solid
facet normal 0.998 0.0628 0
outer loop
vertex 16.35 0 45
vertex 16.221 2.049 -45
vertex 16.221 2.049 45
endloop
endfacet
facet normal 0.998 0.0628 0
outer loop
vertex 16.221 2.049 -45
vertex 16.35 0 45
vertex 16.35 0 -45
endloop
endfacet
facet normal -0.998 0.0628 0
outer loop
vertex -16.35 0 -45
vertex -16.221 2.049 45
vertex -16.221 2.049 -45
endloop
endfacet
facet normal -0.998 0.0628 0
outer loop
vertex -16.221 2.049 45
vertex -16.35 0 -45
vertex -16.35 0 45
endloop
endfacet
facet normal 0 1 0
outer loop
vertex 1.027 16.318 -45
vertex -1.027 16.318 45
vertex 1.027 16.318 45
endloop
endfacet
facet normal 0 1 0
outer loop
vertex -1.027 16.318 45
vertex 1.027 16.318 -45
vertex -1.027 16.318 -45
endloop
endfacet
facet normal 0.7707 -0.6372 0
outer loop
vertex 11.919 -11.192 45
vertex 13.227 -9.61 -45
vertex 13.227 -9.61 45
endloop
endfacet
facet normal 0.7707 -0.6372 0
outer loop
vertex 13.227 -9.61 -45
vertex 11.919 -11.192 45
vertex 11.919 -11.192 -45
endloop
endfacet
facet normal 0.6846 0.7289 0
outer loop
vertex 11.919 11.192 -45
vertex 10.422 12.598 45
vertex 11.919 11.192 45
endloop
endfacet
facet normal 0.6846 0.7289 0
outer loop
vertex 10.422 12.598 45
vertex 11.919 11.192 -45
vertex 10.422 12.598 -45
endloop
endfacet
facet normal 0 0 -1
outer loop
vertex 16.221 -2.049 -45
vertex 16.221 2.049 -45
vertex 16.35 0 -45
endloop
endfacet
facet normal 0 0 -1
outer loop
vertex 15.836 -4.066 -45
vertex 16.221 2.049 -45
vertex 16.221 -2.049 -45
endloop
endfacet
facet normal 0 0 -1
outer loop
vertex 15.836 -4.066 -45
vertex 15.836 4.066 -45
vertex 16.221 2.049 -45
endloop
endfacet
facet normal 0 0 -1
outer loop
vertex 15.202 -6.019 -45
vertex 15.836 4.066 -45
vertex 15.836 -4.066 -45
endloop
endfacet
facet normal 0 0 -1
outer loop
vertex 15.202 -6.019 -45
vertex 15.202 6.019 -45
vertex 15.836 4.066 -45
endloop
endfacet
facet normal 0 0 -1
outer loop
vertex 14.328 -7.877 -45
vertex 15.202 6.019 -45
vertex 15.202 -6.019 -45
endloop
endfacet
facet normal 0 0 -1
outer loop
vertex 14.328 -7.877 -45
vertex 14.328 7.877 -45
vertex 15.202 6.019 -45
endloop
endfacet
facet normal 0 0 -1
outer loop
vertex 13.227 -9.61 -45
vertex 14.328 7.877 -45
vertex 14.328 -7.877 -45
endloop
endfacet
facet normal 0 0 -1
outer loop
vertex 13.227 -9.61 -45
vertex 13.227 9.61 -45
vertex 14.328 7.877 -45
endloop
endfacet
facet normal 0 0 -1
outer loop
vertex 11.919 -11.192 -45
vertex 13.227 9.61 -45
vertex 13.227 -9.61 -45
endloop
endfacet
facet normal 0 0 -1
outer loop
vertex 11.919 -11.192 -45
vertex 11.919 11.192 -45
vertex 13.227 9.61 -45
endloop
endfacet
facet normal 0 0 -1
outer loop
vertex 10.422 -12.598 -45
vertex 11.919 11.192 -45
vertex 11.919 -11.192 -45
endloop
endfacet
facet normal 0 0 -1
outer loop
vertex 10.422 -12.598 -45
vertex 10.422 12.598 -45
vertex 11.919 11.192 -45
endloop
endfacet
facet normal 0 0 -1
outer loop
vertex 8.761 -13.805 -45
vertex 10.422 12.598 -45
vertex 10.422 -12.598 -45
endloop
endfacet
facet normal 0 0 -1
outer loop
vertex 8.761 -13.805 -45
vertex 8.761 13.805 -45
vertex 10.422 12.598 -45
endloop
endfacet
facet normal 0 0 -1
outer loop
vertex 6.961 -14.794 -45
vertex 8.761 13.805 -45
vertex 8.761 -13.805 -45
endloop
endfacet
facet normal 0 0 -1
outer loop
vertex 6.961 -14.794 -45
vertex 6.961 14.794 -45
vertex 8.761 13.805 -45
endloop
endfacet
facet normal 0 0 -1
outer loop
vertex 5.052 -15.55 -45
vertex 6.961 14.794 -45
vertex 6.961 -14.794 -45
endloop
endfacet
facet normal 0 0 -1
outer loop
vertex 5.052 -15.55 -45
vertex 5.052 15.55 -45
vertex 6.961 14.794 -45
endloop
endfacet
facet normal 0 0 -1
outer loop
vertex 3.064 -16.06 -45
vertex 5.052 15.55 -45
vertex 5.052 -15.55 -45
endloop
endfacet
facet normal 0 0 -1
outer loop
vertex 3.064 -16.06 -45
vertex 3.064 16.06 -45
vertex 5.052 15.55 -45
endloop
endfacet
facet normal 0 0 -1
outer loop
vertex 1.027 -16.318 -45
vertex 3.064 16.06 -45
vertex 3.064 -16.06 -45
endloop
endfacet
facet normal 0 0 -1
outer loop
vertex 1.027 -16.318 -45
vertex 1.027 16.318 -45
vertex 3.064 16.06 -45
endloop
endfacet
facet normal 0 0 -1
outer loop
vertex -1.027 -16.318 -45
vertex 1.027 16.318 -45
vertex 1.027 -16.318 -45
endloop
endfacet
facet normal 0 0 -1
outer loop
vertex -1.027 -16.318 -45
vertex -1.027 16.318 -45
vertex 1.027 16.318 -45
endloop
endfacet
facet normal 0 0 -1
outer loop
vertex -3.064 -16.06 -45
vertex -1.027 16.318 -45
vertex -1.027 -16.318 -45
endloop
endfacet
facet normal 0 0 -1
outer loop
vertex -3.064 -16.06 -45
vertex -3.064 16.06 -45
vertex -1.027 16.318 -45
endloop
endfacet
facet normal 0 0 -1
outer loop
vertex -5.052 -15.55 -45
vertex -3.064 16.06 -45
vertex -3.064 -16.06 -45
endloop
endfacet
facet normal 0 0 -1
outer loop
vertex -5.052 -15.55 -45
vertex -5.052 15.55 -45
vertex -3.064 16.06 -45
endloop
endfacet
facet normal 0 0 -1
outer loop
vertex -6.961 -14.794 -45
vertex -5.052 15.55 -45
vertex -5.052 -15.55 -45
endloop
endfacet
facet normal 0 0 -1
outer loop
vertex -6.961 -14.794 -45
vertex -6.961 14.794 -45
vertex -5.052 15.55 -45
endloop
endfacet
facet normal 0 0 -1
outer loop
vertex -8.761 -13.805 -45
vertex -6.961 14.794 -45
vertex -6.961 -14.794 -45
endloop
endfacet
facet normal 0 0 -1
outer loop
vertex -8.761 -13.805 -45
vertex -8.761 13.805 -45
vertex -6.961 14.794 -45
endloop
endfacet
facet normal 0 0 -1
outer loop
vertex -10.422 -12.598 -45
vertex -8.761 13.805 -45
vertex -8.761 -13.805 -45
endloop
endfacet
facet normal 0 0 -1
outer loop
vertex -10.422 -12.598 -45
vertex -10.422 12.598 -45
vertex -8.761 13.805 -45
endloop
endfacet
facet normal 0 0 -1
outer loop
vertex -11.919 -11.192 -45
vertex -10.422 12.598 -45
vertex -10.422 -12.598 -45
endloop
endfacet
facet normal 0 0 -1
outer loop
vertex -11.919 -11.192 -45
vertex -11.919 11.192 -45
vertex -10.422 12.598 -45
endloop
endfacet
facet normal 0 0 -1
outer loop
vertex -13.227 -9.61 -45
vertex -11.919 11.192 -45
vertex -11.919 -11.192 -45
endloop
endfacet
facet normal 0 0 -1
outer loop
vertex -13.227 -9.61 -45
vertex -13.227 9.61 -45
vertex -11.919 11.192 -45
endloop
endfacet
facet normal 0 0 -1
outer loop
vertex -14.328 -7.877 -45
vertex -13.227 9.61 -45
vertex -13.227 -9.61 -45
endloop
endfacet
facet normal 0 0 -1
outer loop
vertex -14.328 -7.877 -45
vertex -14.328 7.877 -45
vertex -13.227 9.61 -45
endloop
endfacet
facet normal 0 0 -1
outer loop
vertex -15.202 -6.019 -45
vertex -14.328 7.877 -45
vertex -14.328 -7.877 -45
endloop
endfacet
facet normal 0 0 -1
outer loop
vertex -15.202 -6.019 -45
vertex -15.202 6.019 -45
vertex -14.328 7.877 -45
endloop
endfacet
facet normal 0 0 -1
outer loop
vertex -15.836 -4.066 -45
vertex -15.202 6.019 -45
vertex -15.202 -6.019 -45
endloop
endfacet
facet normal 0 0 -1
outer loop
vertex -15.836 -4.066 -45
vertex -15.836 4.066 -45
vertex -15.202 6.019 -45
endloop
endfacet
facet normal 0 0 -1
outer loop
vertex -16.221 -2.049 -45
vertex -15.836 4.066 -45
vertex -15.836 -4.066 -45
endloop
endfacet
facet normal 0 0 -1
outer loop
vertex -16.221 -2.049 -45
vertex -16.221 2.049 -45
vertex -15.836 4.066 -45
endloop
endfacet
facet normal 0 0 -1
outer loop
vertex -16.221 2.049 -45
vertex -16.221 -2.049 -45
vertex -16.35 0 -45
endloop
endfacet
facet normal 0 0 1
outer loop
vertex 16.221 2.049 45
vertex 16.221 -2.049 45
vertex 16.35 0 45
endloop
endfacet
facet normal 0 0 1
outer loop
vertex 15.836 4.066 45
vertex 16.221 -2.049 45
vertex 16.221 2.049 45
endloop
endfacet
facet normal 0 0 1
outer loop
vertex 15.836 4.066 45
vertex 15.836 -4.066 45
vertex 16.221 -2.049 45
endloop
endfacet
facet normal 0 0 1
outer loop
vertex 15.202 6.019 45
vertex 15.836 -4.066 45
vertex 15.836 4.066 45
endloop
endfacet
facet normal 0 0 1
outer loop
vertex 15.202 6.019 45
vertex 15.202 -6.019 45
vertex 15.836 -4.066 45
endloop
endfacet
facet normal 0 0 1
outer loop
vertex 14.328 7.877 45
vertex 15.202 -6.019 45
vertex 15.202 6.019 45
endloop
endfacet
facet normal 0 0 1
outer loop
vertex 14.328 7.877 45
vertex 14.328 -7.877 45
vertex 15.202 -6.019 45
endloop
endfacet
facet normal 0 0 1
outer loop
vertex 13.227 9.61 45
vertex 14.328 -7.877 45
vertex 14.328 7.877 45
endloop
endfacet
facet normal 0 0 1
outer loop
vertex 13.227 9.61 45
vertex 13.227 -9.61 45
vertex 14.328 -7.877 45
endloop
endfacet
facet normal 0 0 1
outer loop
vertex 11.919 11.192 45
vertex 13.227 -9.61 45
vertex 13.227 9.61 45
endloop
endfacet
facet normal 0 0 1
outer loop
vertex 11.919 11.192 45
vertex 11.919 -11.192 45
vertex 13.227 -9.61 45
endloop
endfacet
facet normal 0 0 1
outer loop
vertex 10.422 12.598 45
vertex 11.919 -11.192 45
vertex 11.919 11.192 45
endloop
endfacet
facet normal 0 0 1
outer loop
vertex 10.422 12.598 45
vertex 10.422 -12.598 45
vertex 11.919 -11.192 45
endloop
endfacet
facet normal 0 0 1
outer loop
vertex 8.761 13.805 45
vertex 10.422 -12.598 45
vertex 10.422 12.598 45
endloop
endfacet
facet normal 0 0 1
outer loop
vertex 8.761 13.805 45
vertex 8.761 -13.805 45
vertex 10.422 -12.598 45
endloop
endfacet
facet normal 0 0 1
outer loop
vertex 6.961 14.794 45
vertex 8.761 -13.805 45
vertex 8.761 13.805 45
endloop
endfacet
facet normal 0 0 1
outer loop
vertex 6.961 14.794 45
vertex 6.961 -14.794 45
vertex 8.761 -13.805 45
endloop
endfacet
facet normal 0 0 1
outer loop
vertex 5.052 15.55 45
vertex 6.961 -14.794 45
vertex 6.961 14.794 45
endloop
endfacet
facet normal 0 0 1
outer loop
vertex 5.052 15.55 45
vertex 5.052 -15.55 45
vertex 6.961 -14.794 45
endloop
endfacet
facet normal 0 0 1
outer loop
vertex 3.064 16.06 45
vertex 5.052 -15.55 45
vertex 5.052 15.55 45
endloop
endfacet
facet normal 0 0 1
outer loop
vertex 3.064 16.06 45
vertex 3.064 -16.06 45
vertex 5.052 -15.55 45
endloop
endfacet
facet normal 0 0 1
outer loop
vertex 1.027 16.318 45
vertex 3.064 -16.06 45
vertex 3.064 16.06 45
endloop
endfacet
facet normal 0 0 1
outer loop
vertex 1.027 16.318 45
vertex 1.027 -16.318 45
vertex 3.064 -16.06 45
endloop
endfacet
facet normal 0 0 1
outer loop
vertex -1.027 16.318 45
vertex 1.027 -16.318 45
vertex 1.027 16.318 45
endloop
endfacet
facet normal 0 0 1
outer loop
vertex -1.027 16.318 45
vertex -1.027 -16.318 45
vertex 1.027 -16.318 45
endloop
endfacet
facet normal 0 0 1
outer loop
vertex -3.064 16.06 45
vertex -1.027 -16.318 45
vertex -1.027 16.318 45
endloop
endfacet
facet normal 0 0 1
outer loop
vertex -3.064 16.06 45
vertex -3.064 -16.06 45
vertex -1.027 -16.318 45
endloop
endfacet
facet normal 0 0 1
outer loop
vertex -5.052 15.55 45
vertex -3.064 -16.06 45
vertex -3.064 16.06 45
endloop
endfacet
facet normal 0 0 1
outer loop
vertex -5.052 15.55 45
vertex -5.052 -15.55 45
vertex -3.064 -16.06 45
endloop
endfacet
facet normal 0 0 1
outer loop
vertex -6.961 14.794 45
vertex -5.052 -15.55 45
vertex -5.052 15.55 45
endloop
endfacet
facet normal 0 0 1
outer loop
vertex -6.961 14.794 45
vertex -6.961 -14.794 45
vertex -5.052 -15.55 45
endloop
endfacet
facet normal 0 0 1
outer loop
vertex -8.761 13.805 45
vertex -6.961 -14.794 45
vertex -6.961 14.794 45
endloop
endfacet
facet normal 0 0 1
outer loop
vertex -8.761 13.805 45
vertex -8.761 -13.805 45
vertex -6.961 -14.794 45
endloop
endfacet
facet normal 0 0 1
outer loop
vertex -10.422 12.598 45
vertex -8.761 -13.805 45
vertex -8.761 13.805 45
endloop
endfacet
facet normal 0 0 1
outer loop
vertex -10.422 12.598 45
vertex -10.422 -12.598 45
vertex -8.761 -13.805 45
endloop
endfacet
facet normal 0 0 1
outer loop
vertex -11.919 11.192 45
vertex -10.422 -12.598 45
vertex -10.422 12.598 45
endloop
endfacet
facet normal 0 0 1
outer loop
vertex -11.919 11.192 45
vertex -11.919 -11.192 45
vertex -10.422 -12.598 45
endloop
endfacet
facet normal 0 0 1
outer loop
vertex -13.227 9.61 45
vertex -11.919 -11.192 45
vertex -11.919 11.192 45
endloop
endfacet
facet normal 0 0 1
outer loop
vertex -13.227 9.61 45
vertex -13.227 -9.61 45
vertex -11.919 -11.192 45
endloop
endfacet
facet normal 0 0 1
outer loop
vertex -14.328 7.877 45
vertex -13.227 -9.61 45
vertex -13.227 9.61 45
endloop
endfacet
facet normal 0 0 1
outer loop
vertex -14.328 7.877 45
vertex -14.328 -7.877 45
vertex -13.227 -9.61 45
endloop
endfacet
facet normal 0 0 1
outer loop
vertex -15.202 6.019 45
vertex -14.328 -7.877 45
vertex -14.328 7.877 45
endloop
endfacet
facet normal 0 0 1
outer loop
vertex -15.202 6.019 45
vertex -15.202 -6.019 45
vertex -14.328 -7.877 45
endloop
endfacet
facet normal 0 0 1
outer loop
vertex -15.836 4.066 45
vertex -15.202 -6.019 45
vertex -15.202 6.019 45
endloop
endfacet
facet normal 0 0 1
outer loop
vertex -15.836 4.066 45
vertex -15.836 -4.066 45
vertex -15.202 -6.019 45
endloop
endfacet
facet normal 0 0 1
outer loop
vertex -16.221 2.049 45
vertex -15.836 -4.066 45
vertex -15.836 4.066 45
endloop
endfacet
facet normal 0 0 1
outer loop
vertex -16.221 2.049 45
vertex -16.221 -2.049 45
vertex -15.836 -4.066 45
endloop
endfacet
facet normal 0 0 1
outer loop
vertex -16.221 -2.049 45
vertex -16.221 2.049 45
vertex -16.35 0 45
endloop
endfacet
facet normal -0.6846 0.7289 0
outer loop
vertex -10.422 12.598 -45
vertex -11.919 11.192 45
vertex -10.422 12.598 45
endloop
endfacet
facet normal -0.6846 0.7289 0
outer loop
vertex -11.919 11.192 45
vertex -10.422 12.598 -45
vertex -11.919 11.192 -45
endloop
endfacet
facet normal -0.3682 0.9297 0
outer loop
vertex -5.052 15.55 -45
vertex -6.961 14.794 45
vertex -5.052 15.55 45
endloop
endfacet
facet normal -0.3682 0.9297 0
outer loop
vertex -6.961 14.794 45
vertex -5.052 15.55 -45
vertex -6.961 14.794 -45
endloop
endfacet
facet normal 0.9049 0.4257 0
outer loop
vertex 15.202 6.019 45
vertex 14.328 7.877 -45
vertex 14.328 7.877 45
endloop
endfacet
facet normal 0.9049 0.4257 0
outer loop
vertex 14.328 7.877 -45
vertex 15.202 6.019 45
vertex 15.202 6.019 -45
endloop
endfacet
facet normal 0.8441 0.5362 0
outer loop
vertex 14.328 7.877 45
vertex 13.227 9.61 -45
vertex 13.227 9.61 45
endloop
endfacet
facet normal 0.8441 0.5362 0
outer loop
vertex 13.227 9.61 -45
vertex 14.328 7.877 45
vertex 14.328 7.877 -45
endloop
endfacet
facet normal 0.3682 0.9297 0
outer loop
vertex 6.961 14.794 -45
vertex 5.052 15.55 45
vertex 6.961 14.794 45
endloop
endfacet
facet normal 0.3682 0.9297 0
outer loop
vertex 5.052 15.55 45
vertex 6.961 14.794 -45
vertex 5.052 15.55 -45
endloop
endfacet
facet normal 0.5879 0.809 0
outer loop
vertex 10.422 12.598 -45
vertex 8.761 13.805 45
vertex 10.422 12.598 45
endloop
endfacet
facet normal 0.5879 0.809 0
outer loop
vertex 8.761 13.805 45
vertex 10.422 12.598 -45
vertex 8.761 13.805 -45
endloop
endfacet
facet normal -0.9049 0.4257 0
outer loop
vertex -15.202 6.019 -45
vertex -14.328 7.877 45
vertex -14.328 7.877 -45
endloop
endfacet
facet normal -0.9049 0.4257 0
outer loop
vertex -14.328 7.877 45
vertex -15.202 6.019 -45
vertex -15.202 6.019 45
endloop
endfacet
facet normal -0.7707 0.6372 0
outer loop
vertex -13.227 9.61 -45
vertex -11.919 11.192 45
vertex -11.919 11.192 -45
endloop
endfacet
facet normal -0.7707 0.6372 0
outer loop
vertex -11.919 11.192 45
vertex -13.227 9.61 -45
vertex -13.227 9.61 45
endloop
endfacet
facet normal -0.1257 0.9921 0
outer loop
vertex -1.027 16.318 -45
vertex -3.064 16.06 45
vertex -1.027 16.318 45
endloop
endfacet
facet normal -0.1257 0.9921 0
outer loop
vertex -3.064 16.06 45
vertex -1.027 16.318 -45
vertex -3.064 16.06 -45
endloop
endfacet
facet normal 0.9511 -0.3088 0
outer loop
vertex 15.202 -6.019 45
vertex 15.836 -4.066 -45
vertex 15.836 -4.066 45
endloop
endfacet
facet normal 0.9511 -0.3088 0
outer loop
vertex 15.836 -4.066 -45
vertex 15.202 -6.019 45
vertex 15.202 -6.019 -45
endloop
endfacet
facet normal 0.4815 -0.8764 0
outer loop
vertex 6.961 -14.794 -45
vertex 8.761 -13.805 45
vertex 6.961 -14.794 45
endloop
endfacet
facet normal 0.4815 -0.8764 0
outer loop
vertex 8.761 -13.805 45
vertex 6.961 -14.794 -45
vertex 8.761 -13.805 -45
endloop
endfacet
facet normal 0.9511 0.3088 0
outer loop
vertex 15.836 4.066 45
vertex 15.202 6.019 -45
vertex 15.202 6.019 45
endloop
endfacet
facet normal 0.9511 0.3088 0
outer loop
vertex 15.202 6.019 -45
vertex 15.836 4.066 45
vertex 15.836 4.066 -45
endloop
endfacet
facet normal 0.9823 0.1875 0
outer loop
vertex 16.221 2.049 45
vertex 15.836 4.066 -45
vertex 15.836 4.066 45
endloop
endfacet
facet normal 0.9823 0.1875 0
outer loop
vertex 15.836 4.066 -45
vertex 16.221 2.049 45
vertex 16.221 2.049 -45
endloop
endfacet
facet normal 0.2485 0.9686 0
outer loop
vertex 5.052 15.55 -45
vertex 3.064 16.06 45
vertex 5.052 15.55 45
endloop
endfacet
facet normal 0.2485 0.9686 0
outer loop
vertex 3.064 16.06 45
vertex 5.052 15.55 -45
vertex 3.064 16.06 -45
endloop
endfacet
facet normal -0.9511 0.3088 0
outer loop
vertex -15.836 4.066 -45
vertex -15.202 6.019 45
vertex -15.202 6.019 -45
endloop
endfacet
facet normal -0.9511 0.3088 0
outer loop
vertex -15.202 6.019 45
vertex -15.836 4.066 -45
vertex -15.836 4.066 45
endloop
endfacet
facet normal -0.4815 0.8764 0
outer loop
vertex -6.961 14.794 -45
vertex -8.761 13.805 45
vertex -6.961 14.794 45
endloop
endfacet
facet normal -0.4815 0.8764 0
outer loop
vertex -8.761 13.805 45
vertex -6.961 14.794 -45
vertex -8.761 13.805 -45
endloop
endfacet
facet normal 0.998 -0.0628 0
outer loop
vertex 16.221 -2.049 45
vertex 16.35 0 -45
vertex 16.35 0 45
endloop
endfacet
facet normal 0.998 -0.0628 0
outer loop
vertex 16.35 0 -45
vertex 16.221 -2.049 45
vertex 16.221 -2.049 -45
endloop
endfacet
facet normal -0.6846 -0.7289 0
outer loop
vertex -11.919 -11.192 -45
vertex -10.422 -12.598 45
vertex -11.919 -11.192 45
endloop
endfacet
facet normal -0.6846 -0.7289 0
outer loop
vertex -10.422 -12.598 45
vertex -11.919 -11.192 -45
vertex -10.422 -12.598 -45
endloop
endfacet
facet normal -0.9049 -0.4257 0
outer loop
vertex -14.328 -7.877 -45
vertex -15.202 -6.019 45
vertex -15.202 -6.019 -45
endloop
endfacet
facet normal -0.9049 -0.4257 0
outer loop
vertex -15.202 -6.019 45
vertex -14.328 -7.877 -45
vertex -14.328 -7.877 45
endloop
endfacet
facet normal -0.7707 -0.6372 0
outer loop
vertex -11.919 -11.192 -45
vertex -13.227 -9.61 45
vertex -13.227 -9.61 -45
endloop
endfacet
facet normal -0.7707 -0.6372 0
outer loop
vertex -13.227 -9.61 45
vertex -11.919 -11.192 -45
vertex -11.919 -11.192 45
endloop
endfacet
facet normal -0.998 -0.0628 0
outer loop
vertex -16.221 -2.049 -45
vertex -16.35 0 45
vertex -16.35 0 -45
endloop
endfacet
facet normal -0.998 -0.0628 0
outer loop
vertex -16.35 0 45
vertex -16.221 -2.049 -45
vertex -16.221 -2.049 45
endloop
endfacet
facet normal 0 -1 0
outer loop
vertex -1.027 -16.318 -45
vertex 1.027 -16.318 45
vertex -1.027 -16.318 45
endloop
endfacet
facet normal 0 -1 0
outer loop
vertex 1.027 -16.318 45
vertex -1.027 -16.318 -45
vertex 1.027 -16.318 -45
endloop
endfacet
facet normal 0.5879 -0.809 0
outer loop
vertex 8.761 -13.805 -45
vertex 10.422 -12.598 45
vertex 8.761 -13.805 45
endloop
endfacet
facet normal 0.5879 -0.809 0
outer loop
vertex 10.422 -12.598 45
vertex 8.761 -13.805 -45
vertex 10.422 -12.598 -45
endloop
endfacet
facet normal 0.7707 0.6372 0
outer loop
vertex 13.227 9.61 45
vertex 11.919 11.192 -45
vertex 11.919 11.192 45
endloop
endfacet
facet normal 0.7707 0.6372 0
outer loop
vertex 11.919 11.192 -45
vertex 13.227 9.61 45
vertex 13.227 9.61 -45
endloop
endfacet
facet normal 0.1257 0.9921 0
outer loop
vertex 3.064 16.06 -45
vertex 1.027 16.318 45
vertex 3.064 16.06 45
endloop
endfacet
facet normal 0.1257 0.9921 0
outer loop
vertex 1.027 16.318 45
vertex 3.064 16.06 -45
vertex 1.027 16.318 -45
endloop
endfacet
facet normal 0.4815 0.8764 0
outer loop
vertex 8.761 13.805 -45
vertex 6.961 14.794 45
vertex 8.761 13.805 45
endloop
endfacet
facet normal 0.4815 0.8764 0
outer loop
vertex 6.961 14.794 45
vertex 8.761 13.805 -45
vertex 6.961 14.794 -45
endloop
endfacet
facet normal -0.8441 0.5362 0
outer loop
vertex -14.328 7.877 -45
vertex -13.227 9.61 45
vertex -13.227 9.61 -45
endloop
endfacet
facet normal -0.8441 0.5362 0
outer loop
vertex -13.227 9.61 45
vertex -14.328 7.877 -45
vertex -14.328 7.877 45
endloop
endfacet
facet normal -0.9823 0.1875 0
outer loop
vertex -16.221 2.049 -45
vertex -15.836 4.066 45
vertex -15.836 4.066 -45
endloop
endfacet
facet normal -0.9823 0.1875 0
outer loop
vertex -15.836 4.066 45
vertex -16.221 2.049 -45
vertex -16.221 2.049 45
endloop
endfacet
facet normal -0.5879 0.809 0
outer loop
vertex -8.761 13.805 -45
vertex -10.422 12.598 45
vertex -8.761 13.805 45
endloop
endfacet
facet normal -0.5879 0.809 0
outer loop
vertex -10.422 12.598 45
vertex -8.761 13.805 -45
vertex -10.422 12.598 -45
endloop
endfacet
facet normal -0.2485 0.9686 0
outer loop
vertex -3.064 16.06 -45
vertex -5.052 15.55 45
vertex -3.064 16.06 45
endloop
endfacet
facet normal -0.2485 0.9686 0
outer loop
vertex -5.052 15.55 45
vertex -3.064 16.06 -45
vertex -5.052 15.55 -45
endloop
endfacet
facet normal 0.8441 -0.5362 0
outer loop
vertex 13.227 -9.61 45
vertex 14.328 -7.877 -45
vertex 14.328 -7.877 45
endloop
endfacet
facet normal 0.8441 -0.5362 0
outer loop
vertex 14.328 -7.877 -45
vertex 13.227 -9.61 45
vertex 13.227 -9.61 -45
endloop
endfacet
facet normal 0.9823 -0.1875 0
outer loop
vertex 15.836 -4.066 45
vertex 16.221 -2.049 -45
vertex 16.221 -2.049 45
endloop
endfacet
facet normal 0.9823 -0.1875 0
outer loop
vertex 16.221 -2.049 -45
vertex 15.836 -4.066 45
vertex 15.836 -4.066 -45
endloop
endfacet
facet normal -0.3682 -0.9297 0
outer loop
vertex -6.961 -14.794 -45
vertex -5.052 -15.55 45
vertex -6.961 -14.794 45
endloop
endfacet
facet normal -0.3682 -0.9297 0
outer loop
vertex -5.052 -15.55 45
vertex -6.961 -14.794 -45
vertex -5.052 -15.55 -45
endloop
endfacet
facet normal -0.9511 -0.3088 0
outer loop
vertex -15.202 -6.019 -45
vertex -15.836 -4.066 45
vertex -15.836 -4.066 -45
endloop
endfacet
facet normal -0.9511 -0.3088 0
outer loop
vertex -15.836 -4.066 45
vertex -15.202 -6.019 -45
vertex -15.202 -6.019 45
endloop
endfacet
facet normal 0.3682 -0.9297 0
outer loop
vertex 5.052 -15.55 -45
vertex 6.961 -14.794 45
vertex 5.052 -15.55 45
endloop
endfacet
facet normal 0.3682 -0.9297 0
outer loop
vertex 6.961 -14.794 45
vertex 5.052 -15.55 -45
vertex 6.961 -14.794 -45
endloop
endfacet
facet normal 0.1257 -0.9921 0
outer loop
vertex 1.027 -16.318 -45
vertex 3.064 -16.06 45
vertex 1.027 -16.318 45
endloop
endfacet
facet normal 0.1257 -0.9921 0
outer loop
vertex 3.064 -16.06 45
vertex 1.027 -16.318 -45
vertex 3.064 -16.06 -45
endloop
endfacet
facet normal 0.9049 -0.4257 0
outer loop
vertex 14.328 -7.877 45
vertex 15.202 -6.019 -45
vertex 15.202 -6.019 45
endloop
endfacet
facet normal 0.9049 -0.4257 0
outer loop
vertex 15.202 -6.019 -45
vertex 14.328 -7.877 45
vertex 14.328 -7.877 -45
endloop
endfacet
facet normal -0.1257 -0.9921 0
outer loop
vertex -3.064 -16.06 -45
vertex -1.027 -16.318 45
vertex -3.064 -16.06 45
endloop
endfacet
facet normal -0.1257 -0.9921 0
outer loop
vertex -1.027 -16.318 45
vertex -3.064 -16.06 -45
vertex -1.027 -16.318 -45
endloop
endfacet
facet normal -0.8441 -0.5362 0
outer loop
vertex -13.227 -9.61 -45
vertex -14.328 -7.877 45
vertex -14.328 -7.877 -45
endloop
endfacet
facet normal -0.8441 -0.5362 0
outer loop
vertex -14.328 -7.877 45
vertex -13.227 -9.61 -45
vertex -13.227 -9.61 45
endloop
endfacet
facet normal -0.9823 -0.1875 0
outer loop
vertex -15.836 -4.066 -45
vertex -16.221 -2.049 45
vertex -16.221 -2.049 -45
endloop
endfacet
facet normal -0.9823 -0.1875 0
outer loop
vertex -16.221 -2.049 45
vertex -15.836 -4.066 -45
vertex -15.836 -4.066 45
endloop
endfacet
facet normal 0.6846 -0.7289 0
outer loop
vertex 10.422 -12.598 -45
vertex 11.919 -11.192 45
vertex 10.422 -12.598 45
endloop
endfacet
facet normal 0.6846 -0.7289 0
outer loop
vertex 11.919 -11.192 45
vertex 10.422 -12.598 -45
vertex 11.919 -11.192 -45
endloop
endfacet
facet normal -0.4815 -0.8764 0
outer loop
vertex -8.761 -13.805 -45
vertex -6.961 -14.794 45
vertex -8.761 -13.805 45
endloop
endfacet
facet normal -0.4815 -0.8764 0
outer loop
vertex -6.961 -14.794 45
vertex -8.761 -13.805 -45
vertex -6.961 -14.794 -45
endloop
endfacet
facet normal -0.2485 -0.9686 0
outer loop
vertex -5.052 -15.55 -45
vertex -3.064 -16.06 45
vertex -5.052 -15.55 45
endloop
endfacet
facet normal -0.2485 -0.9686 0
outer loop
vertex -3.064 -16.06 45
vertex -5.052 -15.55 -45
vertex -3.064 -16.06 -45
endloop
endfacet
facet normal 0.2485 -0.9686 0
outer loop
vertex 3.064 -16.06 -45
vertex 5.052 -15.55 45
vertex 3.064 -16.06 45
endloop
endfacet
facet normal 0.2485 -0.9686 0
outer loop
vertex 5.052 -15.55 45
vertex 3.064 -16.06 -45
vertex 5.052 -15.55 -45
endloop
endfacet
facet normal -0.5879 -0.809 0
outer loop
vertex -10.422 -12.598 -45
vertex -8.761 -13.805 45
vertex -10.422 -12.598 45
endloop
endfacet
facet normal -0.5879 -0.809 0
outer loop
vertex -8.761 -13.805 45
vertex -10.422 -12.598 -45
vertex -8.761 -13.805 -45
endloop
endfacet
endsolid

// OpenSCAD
$fn = 50;


difference() {
	union() {
		translate(v = [0, 0, -45.0000000000]) {
			cylinder(h = 90, r = 16.3500000000);
		}
	}
	union() {
		translate(v = [0, 0, -100.0000000000]) {
			cylinder(h = 200, r = 0);
		}
	}
}
